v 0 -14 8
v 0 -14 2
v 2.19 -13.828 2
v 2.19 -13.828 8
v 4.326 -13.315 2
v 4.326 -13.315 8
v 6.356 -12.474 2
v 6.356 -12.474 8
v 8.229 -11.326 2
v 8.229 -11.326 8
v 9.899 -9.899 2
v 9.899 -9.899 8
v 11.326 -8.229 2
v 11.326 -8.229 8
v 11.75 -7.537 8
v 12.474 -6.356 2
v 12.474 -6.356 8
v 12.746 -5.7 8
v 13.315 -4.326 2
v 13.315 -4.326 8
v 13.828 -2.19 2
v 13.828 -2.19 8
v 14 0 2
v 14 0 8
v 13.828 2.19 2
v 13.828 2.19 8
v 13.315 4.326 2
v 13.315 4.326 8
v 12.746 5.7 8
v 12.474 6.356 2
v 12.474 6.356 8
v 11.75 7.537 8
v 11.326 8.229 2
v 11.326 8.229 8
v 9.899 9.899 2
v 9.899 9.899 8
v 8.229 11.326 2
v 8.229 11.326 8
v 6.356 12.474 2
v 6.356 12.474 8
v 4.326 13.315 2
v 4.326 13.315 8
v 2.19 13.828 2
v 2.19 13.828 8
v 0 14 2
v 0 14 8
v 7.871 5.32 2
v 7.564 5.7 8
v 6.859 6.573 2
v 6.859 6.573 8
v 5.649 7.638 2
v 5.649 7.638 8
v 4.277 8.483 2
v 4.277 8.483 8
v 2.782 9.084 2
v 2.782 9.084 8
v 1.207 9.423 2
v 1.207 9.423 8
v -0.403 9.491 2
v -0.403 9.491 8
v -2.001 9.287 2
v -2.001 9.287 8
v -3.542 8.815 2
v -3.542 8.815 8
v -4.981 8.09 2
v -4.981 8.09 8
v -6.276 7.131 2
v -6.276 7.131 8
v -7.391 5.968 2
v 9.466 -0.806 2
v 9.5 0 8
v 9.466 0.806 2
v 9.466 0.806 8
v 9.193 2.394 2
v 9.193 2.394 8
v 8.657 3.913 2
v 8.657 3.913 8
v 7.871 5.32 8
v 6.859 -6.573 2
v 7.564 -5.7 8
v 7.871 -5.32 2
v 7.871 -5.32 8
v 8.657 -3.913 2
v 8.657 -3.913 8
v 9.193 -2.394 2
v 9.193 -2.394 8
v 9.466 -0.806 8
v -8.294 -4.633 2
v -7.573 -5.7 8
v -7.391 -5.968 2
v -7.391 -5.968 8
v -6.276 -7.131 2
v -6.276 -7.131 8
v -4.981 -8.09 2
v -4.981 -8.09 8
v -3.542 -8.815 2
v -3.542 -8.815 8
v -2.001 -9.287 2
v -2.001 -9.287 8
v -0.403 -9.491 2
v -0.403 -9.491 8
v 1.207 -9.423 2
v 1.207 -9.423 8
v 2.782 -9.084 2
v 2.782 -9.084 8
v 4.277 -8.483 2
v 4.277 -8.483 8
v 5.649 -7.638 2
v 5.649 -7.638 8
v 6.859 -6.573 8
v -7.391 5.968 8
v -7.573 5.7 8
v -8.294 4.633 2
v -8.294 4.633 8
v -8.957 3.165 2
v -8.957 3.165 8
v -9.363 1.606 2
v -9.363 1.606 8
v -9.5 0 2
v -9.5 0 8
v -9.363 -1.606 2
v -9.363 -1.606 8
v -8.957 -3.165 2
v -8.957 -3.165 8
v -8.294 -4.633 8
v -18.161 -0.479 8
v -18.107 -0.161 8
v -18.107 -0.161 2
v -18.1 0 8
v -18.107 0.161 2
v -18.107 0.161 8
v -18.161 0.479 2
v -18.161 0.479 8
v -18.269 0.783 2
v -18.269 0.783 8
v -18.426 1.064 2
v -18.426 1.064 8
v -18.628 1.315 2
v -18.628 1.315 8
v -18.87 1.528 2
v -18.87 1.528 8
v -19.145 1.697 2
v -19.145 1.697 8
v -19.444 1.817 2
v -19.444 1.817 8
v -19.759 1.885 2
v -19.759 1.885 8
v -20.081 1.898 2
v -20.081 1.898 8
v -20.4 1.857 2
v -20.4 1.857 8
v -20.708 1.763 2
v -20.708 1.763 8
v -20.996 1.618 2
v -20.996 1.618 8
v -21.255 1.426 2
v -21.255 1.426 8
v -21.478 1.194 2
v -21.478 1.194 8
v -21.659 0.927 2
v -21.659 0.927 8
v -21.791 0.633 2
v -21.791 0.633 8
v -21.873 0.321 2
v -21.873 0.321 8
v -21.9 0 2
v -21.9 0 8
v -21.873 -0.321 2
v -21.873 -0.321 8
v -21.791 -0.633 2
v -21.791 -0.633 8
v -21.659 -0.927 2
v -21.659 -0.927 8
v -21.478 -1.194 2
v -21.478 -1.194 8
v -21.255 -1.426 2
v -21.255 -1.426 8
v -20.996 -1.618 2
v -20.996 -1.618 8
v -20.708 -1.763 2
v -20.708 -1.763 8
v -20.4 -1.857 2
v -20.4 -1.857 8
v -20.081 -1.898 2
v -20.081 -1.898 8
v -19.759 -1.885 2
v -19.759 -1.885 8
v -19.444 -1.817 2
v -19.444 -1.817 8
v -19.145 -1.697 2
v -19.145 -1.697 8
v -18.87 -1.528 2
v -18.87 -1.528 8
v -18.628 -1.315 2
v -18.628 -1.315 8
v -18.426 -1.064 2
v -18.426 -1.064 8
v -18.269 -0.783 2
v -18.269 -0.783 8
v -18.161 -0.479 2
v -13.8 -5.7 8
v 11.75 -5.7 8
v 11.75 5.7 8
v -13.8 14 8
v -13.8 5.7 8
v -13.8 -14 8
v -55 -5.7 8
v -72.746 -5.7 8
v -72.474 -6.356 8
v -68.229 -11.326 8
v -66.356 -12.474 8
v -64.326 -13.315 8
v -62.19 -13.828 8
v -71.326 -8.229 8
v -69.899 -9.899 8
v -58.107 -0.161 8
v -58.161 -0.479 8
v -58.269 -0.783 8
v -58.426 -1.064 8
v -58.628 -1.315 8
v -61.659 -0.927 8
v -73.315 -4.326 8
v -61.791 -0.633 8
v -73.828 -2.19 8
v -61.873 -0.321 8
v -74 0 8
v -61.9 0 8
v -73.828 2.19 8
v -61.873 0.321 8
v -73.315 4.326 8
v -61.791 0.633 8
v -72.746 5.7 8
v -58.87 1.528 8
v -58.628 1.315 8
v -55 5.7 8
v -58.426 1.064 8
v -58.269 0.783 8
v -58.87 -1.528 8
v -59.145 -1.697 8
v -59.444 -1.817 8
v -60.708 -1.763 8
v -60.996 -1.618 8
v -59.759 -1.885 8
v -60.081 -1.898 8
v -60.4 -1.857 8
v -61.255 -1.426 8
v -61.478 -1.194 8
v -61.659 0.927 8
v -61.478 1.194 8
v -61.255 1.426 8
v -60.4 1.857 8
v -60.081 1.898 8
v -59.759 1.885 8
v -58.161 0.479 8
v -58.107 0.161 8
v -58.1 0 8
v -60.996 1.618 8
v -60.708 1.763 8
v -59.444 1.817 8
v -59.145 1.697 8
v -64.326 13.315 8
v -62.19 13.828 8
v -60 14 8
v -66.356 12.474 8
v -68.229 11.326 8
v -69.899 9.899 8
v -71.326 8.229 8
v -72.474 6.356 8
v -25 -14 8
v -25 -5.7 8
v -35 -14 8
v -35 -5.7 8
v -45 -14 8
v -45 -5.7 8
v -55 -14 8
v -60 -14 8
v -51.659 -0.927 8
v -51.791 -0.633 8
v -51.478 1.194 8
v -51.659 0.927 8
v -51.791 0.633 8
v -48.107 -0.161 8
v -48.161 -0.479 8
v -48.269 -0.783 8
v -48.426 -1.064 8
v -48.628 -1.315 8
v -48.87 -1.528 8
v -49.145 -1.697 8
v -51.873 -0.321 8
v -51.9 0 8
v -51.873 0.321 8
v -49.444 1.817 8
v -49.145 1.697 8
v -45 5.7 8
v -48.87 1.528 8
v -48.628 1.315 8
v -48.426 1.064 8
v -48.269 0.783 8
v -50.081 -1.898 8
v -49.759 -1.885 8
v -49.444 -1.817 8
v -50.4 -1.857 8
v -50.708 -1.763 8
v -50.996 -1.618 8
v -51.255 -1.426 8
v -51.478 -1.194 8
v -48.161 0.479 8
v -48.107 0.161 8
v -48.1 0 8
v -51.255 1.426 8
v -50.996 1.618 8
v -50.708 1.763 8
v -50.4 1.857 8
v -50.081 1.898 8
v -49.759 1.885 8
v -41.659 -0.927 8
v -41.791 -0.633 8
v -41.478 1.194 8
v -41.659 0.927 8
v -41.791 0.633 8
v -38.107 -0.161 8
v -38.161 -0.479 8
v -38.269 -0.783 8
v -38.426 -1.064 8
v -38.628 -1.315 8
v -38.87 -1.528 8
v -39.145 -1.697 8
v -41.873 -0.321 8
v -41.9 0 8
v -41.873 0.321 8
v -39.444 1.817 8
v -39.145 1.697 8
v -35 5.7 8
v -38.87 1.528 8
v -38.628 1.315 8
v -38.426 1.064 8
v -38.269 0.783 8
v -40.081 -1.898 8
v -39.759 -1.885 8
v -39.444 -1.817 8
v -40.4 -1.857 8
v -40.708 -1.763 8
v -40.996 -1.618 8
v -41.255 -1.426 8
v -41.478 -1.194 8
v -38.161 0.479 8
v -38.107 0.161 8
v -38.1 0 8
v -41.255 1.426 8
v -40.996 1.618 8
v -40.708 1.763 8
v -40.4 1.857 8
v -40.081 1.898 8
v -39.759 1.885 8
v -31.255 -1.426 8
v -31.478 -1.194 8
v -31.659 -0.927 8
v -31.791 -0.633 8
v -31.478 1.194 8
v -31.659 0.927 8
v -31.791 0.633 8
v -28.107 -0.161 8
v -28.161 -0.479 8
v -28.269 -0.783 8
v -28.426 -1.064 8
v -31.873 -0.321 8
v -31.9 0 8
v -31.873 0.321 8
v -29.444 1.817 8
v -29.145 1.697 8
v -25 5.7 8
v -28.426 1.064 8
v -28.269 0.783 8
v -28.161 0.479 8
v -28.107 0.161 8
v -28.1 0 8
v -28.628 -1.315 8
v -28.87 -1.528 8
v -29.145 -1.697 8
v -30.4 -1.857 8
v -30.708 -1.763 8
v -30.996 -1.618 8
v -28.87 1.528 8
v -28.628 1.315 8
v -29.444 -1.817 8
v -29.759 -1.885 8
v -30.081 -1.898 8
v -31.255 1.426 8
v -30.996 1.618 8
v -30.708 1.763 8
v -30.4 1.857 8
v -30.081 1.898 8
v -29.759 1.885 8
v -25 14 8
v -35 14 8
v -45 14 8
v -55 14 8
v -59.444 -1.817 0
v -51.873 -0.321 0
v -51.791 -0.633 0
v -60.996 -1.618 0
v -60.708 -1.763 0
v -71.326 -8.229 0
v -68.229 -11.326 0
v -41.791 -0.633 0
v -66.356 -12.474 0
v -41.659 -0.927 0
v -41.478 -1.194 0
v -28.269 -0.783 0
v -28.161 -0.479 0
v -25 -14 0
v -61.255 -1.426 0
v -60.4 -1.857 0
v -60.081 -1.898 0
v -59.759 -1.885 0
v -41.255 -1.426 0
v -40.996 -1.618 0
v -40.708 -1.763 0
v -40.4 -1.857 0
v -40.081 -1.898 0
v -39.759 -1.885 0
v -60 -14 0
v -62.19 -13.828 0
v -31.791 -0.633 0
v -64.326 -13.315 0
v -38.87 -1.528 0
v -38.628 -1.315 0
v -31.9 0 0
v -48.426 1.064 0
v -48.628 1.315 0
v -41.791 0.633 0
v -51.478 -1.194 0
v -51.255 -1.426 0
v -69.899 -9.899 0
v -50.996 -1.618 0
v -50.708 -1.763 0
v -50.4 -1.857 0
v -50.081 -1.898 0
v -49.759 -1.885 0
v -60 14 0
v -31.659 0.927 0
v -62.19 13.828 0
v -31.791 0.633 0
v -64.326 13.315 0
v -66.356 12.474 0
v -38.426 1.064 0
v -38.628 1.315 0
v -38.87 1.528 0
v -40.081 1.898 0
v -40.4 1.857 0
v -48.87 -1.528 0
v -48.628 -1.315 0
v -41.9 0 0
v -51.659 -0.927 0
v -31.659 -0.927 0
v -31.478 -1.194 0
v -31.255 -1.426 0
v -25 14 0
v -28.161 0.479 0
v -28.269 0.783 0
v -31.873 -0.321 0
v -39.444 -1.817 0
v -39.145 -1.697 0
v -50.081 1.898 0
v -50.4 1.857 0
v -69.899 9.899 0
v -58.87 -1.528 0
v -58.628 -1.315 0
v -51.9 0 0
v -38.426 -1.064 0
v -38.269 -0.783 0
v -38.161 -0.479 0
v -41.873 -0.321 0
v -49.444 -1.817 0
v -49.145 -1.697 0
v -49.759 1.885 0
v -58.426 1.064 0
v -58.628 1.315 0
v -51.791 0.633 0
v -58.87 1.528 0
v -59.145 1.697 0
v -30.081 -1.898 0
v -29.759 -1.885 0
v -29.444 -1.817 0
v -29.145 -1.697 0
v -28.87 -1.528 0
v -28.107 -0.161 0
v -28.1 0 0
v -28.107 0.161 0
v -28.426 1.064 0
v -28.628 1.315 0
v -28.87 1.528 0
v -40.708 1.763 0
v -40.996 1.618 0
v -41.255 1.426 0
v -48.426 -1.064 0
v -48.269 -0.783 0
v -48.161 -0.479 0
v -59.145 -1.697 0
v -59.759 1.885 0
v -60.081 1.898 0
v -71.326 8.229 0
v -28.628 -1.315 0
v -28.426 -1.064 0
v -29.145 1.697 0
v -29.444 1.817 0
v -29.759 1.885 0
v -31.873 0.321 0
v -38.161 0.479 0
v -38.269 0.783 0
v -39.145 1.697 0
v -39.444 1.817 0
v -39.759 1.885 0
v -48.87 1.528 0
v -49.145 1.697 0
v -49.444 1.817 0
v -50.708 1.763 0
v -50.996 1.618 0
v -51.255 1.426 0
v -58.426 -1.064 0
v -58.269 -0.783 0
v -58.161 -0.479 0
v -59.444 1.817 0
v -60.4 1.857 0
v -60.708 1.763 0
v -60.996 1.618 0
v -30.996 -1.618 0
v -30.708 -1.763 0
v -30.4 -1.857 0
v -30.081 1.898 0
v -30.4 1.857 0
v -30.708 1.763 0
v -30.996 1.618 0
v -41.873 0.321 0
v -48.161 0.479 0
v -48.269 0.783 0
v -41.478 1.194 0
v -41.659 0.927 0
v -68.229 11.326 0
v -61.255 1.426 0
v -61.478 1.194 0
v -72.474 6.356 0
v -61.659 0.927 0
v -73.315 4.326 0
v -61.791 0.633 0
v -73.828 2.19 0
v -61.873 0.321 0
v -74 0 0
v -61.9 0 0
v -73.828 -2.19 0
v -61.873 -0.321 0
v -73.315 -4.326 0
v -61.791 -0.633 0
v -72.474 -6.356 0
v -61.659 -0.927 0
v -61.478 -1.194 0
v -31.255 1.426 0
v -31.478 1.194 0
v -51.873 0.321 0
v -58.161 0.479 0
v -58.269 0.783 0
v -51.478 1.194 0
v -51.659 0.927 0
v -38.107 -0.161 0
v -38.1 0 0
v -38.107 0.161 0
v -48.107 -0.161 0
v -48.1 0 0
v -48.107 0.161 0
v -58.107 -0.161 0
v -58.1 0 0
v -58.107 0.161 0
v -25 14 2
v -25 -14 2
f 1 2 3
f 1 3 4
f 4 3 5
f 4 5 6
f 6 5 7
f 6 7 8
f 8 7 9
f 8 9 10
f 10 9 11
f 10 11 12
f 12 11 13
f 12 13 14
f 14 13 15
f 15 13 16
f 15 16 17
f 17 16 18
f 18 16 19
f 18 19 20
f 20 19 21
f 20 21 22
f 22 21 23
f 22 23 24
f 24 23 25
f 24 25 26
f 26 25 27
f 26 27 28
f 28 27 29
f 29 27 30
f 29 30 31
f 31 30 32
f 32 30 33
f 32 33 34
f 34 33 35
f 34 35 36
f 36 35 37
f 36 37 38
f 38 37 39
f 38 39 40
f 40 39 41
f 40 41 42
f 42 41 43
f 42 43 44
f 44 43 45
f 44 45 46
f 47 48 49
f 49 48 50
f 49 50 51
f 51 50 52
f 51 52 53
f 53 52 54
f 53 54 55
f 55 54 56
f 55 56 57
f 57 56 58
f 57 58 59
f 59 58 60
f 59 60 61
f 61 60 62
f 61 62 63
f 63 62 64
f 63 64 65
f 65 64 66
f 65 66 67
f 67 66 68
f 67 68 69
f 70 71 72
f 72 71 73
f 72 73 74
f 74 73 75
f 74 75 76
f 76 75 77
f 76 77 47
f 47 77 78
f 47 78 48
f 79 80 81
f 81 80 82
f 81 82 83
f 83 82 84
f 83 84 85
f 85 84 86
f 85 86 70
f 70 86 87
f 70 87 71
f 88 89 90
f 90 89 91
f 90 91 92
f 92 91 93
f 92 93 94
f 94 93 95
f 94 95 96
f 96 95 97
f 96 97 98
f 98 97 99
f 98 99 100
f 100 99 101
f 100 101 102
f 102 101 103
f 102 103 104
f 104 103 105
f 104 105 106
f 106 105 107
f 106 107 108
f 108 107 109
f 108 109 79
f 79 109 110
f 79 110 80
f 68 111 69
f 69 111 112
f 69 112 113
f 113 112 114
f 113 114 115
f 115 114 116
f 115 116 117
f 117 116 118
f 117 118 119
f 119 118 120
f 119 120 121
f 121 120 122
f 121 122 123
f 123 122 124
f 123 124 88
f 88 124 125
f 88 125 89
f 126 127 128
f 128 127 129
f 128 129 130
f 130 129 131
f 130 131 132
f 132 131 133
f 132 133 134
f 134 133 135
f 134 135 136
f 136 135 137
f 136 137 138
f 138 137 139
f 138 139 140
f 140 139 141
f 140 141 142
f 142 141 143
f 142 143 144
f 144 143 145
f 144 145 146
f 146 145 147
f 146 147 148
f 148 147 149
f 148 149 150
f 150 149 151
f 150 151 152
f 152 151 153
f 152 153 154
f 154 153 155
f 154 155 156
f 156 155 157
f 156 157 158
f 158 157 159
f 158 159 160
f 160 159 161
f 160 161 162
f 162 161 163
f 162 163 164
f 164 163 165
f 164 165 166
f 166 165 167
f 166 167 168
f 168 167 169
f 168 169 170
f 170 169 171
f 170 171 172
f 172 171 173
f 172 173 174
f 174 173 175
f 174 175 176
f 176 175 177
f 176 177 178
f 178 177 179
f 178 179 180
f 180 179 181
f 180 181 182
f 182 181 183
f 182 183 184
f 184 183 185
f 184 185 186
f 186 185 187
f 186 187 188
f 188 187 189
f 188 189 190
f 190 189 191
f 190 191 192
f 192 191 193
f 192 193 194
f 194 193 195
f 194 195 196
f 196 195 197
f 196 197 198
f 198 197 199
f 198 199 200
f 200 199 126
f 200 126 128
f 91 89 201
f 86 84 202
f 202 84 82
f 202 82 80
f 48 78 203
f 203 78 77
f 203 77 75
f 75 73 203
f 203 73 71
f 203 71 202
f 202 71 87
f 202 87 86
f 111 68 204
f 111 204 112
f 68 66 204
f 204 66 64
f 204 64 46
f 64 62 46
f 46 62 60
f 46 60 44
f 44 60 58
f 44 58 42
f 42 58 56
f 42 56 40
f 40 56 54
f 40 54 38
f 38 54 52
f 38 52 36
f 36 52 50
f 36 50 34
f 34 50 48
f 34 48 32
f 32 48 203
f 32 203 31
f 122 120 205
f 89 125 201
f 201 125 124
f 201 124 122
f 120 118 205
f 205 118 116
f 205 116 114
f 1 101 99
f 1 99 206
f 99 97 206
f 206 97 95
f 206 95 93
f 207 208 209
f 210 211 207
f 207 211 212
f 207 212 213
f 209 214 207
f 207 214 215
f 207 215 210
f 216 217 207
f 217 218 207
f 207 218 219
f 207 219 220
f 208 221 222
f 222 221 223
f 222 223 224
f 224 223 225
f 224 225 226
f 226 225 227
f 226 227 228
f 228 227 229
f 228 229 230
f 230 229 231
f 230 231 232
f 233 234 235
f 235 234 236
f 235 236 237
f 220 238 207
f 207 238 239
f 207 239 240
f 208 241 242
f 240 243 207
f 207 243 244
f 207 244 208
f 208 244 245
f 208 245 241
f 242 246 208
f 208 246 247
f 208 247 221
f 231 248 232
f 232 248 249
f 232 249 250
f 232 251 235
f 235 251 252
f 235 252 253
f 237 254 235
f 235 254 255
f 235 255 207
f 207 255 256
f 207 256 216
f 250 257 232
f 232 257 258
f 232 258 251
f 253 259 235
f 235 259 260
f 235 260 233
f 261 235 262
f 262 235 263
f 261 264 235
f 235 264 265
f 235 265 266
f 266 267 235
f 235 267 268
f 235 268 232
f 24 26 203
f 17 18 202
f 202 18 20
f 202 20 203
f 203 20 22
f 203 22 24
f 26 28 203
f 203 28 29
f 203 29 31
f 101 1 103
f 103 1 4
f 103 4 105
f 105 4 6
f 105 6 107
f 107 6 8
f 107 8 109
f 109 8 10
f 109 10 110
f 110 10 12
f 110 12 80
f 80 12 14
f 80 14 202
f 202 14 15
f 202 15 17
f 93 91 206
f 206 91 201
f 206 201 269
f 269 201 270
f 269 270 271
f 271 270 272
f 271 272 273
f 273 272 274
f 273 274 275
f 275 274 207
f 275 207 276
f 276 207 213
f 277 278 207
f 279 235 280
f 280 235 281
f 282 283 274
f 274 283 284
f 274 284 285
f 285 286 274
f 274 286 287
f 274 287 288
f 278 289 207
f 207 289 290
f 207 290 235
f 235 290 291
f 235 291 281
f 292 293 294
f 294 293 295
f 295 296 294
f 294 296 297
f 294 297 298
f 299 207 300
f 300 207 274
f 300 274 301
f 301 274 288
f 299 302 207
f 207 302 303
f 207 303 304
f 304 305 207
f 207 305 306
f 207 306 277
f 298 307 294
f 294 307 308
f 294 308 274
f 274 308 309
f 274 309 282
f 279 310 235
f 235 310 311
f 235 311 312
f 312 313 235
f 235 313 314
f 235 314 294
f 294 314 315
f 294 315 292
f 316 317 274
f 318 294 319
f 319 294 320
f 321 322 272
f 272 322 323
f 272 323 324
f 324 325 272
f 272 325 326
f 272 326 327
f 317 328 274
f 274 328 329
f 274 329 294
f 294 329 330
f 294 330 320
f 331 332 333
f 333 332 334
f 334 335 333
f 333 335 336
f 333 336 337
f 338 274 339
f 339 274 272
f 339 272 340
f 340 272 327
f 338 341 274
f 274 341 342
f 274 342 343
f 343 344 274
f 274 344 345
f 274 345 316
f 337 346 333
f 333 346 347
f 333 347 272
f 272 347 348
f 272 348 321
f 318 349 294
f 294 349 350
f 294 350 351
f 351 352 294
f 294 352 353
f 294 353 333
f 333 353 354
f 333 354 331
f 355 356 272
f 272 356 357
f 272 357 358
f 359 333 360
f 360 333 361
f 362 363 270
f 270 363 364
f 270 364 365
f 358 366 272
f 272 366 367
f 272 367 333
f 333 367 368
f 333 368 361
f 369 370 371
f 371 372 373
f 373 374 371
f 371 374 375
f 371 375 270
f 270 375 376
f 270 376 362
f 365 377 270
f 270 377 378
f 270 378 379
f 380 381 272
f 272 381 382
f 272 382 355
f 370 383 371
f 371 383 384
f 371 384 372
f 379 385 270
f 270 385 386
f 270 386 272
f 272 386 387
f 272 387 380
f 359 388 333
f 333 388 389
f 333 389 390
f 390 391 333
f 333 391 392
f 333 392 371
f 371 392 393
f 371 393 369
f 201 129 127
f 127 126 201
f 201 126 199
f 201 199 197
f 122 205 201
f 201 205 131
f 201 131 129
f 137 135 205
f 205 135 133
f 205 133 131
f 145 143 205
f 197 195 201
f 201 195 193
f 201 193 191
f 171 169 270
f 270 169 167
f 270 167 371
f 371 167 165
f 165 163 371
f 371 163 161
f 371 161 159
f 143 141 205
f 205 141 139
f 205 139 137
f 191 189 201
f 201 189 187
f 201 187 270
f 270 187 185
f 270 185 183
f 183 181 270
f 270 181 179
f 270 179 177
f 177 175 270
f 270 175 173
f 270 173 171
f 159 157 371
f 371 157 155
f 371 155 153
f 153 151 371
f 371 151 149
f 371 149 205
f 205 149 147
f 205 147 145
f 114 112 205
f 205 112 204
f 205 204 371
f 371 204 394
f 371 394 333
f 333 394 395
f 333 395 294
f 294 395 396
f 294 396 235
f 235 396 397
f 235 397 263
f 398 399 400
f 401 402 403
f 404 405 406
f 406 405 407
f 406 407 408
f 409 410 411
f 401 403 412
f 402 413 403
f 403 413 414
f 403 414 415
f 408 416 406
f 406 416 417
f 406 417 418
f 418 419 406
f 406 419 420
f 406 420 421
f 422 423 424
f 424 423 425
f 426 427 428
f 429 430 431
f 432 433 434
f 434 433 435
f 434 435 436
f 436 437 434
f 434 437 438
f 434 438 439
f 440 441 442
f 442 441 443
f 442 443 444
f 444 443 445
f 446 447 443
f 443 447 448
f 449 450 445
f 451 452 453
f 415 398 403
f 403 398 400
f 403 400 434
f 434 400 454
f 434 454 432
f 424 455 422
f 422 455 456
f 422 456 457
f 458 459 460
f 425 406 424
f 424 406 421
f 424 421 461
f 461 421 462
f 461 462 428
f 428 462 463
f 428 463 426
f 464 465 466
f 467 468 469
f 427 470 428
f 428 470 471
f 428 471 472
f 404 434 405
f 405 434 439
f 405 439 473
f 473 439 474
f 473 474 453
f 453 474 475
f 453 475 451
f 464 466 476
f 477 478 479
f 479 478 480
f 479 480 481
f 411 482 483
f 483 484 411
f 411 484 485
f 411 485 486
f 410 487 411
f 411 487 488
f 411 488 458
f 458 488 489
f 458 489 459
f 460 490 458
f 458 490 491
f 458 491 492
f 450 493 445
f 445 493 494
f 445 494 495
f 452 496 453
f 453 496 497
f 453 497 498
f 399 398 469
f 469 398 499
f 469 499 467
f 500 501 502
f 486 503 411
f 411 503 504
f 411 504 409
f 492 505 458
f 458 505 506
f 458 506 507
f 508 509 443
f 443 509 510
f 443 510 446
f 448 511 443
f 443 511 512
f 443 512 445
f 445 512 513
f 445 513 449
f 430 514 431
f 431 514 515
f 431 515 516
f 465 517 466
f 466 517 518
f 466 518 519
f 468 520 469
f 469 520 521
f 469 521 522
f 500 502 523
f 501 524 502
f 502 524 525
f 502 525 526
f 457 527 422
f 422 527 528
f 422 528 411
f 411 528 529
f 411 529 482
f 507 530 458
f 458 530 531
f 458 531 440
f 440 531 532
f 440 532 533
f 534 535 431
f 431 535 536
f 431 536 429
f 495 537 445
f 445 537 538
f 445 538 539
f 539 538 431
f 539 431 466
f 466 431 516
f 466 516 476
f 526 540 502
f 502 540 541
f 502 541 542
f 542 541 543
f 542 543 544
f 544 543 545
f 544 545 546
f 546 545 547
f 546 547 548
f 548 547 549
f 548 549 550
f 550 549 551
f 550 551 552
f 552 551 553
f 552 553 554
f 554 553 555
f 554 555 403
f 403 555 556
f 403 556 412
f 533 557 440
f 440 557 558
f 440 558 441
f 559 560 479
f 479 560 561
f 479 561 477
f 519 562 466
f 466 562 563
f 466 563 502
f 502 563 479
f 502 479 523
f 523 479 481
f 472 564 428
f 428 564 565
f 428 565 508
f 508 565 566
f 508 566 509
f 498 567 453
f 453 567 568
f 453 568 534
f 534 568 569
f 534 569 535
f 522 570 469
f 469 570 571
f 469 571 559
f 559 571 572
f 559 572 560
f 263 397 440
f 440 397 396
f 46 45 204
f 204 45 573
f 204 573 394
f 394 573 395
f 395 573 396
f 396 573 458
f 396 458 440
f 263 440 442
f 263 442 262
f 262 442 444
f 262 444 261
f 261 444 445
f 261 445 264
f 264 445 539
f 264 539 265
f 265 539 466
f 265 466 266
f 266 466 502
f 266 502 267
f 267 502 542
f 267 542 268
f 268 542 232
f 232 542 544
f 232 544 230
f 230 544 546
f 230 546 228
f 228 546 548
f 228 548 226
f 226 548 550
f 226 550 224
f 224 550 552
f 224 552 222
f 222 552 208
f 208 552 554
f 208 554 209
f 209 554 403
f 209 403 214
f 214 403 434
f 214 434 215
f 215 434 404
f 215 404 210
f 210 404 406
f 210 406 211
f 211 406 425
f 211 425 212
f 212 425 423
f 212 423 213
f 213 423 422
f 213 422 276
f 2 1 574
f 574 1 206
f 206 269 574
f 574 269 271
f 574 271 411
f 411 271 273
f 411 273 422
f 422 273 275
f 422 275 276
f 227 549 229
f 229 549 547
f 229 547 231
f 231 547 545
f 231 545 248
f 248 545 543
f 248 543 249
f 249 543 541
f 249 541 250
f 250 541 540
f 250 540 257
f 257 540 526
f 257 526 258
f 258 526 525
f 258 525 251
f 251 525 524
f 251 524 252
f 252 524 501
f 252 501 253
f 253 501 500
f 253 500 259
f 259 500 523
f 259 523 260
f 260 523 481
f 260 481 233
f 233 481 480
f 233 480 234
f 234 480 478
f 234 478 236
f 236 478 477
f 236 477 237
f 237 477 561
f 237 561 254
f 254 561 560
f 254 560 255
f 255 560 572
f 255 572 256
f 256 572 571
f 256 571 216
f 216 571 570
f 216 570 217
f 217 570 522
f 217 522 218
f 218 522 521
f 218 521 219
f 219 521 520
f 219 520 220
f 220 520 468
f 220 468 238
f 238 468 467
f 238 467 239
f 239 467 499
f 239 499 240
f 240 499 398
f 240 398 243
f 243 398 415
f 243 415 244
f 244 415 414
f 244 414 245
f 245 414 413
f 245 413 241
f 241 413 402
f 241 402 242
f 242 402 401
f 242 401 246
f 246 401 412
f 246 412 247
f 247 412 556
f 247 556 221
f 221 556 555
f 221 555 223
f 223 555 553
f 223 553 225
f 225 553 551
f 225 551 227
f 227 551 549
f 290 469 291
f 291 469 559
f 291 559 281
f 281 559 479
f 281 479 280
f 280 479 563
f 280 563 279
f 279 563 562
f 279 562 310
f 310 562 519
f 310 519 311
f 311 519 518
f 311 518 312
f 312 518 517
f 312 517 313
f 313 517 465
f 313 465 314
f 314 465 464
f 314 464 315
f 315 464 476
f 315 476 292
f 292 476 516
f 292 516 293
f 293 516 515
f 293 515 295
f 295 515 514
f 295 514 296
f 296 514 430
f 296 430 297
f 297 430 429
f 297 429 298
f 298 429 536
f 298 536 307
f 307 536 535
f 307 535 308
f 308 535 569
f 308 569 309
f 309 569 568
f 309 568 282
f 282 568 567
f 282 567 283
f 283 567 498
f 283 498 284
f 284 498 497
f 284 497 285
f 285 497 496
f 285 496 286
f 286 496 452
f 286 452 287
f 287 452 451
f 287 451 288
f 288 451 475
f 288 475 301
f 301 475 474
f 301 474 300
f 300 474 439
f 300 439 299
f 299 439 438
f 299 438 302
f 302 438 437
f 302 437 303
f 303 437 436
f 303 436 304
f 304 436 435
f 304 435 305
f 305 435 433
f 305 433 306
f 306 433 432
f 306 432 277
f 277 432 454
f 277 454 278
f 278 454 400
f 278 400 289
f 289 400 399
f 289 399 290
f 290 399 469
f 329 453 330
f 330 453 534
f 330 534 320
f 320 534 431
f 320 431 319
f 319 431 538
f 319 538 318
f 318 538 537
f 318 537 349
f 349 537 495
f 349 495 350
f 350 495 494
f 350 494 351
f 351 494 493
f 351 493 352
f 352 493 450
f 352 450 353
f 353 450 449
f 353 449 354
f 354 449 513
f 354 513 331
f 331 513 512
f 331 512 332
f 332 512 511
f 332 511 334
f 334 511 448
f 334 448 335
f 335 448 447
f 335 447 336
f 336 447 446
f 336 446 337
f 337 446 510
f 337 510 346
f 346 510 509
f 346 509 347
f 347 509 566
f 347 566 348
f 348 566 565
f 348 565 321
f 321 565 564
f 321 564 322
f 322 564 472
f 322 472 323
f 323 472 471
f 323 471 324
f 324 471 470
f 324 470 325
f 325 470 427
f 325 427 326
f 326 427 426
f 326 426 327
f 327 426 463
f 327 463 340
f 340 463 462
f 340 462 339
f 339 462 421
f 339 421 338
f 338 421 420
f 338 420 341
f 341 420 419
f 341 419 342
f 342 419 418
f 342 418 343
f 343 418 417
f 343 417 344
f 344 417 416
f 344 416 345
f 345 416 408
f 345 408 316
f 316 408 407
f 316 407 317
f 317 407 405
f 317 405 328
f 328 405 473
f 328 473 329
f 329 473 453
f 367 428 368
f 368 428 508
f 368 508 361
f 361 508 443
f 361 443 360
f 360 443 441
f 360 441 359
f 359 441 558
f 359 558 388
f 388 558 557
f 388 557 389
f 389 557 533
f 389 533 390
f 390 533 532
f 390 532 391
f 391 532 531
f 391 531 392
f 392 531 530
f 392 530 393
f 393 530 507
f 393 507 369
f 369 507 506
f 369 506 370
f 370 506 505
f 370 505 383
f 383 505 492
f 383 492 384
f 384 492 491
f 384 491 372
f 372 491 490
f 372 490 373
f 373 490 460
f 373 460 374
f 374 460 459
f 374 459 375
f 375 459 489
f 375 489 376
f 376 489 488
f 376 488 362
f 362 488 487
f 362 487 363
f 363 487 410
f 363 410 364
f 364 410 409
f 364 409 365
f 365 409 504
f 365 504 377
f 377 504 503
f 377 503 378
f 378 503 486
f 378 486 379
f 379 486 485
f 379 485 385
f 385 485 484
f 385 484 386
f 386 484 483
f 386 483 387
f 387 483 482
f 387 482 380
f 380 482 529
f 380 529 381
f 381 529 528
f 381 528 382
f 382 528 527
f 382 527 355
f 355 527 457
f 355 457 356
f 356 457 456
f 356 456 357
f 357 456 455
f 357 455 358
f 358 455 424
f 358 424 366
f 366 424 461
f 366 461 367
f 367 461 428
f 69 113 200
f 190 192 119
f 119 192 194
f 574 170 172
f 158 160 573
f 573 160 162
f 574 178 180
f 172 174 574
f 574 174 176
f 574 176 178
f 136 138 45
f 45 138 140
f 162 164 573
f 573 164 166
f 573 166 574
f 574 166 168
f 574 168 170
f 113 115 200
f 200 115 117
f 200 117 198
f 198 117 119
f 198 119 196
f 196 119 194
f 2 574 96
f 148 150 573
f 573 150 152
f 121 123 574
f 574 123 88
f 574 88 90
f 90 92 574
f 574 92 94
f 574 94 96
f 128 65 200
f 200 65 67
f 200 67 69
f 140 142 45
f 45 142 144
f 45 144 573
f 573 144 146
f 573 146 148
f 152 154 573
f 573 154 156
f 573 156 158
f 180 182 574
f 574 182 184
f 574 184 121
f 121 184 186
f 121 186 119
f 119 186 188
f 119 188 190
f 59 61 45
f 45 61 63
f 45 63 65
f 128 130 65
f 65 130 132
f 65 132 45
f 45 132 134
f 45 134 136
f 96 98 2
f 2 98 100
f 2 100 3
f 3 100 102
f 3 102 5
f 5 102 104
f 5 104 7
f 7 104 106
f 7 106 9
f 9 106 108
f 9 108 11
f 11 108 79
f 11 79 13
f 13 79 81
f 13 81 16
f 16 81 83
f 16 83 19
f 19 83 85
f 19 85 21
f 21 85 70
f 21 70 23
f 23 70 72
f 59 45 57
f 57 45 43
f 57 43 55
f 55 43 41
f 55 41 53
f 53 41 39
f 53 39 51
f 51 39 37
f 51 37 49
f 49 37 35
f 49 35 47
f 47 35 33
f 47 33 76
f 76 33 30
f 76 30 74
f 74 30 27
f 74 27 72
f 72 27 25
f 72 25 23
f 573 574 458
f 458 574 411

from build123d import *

# Parameters (mm, degrees)
ESQUISSE1_R             = 9.5
ESQUISSE1_R_2           = 1.9
BOSS_EXTRU_1_DEPTH      = 8
ESQUISSE3_W             = 39
ESQUISSE3_H             = 28
ENL_V_MAT_EXTRU_1_DEPTH = 2


with BuildPart() as part:
    # Esquisse1 → Boss.-Extru.1 (new body)
    with BuildSketch(Plane.XY):
        with BuildLine():
            Line((0, 14), (-60, 14))
            ThreePointArc((-60, 14), (-74, 0), (-60, -14))
            Line((-60, -14), (0, -14))
            ThreePointArc((0, -14), (14, 0), (0, 14))
        make_face()
        Circle(ESQUISSE1_R, mode=Mode.SUBTRACT)
        with Locations((-60, 0)):
            Circle(ESQUISSE1_R_2, mode=Mode.SUBTRACT)
        with Locations((-50, 0)):
            Circle(ESQUISSE1_R_2, mode=Mode.SUBTRACT)
        with Locations((-40, 0)):
            Circle(ESQUISSE1_R_2, mode=Mode.SUBTRACT)
        with Locations((-30, 0)):
            Circle(ESQUISSE1_R_2, mode=Mode.SUBTRACT)
        with Locations((-20, 0)):
            Circle(ESQUISSE1_R_2, mode=Mode.SUBTRACT)
    extrude(amount=BOSS_EXTRU_1_DEPTH)

    # Esquisse3 → Enlèv. mat.-Extru.1 (cut)
    with BuildSketch(Plane(origin=(0, 0, 0), x_dir=(-1, 0, 0), z_dir=(0, 0, -1))):
        with Locations((5.5, 0)):
            Rectangle(ESQUISSE3_W, ESQUISSE3_H)
    extrude(amount=-ENL_V_MAT_EXTRU_1_DEPTH, mode=Mode.SUBTRACT)


solid = part.part
